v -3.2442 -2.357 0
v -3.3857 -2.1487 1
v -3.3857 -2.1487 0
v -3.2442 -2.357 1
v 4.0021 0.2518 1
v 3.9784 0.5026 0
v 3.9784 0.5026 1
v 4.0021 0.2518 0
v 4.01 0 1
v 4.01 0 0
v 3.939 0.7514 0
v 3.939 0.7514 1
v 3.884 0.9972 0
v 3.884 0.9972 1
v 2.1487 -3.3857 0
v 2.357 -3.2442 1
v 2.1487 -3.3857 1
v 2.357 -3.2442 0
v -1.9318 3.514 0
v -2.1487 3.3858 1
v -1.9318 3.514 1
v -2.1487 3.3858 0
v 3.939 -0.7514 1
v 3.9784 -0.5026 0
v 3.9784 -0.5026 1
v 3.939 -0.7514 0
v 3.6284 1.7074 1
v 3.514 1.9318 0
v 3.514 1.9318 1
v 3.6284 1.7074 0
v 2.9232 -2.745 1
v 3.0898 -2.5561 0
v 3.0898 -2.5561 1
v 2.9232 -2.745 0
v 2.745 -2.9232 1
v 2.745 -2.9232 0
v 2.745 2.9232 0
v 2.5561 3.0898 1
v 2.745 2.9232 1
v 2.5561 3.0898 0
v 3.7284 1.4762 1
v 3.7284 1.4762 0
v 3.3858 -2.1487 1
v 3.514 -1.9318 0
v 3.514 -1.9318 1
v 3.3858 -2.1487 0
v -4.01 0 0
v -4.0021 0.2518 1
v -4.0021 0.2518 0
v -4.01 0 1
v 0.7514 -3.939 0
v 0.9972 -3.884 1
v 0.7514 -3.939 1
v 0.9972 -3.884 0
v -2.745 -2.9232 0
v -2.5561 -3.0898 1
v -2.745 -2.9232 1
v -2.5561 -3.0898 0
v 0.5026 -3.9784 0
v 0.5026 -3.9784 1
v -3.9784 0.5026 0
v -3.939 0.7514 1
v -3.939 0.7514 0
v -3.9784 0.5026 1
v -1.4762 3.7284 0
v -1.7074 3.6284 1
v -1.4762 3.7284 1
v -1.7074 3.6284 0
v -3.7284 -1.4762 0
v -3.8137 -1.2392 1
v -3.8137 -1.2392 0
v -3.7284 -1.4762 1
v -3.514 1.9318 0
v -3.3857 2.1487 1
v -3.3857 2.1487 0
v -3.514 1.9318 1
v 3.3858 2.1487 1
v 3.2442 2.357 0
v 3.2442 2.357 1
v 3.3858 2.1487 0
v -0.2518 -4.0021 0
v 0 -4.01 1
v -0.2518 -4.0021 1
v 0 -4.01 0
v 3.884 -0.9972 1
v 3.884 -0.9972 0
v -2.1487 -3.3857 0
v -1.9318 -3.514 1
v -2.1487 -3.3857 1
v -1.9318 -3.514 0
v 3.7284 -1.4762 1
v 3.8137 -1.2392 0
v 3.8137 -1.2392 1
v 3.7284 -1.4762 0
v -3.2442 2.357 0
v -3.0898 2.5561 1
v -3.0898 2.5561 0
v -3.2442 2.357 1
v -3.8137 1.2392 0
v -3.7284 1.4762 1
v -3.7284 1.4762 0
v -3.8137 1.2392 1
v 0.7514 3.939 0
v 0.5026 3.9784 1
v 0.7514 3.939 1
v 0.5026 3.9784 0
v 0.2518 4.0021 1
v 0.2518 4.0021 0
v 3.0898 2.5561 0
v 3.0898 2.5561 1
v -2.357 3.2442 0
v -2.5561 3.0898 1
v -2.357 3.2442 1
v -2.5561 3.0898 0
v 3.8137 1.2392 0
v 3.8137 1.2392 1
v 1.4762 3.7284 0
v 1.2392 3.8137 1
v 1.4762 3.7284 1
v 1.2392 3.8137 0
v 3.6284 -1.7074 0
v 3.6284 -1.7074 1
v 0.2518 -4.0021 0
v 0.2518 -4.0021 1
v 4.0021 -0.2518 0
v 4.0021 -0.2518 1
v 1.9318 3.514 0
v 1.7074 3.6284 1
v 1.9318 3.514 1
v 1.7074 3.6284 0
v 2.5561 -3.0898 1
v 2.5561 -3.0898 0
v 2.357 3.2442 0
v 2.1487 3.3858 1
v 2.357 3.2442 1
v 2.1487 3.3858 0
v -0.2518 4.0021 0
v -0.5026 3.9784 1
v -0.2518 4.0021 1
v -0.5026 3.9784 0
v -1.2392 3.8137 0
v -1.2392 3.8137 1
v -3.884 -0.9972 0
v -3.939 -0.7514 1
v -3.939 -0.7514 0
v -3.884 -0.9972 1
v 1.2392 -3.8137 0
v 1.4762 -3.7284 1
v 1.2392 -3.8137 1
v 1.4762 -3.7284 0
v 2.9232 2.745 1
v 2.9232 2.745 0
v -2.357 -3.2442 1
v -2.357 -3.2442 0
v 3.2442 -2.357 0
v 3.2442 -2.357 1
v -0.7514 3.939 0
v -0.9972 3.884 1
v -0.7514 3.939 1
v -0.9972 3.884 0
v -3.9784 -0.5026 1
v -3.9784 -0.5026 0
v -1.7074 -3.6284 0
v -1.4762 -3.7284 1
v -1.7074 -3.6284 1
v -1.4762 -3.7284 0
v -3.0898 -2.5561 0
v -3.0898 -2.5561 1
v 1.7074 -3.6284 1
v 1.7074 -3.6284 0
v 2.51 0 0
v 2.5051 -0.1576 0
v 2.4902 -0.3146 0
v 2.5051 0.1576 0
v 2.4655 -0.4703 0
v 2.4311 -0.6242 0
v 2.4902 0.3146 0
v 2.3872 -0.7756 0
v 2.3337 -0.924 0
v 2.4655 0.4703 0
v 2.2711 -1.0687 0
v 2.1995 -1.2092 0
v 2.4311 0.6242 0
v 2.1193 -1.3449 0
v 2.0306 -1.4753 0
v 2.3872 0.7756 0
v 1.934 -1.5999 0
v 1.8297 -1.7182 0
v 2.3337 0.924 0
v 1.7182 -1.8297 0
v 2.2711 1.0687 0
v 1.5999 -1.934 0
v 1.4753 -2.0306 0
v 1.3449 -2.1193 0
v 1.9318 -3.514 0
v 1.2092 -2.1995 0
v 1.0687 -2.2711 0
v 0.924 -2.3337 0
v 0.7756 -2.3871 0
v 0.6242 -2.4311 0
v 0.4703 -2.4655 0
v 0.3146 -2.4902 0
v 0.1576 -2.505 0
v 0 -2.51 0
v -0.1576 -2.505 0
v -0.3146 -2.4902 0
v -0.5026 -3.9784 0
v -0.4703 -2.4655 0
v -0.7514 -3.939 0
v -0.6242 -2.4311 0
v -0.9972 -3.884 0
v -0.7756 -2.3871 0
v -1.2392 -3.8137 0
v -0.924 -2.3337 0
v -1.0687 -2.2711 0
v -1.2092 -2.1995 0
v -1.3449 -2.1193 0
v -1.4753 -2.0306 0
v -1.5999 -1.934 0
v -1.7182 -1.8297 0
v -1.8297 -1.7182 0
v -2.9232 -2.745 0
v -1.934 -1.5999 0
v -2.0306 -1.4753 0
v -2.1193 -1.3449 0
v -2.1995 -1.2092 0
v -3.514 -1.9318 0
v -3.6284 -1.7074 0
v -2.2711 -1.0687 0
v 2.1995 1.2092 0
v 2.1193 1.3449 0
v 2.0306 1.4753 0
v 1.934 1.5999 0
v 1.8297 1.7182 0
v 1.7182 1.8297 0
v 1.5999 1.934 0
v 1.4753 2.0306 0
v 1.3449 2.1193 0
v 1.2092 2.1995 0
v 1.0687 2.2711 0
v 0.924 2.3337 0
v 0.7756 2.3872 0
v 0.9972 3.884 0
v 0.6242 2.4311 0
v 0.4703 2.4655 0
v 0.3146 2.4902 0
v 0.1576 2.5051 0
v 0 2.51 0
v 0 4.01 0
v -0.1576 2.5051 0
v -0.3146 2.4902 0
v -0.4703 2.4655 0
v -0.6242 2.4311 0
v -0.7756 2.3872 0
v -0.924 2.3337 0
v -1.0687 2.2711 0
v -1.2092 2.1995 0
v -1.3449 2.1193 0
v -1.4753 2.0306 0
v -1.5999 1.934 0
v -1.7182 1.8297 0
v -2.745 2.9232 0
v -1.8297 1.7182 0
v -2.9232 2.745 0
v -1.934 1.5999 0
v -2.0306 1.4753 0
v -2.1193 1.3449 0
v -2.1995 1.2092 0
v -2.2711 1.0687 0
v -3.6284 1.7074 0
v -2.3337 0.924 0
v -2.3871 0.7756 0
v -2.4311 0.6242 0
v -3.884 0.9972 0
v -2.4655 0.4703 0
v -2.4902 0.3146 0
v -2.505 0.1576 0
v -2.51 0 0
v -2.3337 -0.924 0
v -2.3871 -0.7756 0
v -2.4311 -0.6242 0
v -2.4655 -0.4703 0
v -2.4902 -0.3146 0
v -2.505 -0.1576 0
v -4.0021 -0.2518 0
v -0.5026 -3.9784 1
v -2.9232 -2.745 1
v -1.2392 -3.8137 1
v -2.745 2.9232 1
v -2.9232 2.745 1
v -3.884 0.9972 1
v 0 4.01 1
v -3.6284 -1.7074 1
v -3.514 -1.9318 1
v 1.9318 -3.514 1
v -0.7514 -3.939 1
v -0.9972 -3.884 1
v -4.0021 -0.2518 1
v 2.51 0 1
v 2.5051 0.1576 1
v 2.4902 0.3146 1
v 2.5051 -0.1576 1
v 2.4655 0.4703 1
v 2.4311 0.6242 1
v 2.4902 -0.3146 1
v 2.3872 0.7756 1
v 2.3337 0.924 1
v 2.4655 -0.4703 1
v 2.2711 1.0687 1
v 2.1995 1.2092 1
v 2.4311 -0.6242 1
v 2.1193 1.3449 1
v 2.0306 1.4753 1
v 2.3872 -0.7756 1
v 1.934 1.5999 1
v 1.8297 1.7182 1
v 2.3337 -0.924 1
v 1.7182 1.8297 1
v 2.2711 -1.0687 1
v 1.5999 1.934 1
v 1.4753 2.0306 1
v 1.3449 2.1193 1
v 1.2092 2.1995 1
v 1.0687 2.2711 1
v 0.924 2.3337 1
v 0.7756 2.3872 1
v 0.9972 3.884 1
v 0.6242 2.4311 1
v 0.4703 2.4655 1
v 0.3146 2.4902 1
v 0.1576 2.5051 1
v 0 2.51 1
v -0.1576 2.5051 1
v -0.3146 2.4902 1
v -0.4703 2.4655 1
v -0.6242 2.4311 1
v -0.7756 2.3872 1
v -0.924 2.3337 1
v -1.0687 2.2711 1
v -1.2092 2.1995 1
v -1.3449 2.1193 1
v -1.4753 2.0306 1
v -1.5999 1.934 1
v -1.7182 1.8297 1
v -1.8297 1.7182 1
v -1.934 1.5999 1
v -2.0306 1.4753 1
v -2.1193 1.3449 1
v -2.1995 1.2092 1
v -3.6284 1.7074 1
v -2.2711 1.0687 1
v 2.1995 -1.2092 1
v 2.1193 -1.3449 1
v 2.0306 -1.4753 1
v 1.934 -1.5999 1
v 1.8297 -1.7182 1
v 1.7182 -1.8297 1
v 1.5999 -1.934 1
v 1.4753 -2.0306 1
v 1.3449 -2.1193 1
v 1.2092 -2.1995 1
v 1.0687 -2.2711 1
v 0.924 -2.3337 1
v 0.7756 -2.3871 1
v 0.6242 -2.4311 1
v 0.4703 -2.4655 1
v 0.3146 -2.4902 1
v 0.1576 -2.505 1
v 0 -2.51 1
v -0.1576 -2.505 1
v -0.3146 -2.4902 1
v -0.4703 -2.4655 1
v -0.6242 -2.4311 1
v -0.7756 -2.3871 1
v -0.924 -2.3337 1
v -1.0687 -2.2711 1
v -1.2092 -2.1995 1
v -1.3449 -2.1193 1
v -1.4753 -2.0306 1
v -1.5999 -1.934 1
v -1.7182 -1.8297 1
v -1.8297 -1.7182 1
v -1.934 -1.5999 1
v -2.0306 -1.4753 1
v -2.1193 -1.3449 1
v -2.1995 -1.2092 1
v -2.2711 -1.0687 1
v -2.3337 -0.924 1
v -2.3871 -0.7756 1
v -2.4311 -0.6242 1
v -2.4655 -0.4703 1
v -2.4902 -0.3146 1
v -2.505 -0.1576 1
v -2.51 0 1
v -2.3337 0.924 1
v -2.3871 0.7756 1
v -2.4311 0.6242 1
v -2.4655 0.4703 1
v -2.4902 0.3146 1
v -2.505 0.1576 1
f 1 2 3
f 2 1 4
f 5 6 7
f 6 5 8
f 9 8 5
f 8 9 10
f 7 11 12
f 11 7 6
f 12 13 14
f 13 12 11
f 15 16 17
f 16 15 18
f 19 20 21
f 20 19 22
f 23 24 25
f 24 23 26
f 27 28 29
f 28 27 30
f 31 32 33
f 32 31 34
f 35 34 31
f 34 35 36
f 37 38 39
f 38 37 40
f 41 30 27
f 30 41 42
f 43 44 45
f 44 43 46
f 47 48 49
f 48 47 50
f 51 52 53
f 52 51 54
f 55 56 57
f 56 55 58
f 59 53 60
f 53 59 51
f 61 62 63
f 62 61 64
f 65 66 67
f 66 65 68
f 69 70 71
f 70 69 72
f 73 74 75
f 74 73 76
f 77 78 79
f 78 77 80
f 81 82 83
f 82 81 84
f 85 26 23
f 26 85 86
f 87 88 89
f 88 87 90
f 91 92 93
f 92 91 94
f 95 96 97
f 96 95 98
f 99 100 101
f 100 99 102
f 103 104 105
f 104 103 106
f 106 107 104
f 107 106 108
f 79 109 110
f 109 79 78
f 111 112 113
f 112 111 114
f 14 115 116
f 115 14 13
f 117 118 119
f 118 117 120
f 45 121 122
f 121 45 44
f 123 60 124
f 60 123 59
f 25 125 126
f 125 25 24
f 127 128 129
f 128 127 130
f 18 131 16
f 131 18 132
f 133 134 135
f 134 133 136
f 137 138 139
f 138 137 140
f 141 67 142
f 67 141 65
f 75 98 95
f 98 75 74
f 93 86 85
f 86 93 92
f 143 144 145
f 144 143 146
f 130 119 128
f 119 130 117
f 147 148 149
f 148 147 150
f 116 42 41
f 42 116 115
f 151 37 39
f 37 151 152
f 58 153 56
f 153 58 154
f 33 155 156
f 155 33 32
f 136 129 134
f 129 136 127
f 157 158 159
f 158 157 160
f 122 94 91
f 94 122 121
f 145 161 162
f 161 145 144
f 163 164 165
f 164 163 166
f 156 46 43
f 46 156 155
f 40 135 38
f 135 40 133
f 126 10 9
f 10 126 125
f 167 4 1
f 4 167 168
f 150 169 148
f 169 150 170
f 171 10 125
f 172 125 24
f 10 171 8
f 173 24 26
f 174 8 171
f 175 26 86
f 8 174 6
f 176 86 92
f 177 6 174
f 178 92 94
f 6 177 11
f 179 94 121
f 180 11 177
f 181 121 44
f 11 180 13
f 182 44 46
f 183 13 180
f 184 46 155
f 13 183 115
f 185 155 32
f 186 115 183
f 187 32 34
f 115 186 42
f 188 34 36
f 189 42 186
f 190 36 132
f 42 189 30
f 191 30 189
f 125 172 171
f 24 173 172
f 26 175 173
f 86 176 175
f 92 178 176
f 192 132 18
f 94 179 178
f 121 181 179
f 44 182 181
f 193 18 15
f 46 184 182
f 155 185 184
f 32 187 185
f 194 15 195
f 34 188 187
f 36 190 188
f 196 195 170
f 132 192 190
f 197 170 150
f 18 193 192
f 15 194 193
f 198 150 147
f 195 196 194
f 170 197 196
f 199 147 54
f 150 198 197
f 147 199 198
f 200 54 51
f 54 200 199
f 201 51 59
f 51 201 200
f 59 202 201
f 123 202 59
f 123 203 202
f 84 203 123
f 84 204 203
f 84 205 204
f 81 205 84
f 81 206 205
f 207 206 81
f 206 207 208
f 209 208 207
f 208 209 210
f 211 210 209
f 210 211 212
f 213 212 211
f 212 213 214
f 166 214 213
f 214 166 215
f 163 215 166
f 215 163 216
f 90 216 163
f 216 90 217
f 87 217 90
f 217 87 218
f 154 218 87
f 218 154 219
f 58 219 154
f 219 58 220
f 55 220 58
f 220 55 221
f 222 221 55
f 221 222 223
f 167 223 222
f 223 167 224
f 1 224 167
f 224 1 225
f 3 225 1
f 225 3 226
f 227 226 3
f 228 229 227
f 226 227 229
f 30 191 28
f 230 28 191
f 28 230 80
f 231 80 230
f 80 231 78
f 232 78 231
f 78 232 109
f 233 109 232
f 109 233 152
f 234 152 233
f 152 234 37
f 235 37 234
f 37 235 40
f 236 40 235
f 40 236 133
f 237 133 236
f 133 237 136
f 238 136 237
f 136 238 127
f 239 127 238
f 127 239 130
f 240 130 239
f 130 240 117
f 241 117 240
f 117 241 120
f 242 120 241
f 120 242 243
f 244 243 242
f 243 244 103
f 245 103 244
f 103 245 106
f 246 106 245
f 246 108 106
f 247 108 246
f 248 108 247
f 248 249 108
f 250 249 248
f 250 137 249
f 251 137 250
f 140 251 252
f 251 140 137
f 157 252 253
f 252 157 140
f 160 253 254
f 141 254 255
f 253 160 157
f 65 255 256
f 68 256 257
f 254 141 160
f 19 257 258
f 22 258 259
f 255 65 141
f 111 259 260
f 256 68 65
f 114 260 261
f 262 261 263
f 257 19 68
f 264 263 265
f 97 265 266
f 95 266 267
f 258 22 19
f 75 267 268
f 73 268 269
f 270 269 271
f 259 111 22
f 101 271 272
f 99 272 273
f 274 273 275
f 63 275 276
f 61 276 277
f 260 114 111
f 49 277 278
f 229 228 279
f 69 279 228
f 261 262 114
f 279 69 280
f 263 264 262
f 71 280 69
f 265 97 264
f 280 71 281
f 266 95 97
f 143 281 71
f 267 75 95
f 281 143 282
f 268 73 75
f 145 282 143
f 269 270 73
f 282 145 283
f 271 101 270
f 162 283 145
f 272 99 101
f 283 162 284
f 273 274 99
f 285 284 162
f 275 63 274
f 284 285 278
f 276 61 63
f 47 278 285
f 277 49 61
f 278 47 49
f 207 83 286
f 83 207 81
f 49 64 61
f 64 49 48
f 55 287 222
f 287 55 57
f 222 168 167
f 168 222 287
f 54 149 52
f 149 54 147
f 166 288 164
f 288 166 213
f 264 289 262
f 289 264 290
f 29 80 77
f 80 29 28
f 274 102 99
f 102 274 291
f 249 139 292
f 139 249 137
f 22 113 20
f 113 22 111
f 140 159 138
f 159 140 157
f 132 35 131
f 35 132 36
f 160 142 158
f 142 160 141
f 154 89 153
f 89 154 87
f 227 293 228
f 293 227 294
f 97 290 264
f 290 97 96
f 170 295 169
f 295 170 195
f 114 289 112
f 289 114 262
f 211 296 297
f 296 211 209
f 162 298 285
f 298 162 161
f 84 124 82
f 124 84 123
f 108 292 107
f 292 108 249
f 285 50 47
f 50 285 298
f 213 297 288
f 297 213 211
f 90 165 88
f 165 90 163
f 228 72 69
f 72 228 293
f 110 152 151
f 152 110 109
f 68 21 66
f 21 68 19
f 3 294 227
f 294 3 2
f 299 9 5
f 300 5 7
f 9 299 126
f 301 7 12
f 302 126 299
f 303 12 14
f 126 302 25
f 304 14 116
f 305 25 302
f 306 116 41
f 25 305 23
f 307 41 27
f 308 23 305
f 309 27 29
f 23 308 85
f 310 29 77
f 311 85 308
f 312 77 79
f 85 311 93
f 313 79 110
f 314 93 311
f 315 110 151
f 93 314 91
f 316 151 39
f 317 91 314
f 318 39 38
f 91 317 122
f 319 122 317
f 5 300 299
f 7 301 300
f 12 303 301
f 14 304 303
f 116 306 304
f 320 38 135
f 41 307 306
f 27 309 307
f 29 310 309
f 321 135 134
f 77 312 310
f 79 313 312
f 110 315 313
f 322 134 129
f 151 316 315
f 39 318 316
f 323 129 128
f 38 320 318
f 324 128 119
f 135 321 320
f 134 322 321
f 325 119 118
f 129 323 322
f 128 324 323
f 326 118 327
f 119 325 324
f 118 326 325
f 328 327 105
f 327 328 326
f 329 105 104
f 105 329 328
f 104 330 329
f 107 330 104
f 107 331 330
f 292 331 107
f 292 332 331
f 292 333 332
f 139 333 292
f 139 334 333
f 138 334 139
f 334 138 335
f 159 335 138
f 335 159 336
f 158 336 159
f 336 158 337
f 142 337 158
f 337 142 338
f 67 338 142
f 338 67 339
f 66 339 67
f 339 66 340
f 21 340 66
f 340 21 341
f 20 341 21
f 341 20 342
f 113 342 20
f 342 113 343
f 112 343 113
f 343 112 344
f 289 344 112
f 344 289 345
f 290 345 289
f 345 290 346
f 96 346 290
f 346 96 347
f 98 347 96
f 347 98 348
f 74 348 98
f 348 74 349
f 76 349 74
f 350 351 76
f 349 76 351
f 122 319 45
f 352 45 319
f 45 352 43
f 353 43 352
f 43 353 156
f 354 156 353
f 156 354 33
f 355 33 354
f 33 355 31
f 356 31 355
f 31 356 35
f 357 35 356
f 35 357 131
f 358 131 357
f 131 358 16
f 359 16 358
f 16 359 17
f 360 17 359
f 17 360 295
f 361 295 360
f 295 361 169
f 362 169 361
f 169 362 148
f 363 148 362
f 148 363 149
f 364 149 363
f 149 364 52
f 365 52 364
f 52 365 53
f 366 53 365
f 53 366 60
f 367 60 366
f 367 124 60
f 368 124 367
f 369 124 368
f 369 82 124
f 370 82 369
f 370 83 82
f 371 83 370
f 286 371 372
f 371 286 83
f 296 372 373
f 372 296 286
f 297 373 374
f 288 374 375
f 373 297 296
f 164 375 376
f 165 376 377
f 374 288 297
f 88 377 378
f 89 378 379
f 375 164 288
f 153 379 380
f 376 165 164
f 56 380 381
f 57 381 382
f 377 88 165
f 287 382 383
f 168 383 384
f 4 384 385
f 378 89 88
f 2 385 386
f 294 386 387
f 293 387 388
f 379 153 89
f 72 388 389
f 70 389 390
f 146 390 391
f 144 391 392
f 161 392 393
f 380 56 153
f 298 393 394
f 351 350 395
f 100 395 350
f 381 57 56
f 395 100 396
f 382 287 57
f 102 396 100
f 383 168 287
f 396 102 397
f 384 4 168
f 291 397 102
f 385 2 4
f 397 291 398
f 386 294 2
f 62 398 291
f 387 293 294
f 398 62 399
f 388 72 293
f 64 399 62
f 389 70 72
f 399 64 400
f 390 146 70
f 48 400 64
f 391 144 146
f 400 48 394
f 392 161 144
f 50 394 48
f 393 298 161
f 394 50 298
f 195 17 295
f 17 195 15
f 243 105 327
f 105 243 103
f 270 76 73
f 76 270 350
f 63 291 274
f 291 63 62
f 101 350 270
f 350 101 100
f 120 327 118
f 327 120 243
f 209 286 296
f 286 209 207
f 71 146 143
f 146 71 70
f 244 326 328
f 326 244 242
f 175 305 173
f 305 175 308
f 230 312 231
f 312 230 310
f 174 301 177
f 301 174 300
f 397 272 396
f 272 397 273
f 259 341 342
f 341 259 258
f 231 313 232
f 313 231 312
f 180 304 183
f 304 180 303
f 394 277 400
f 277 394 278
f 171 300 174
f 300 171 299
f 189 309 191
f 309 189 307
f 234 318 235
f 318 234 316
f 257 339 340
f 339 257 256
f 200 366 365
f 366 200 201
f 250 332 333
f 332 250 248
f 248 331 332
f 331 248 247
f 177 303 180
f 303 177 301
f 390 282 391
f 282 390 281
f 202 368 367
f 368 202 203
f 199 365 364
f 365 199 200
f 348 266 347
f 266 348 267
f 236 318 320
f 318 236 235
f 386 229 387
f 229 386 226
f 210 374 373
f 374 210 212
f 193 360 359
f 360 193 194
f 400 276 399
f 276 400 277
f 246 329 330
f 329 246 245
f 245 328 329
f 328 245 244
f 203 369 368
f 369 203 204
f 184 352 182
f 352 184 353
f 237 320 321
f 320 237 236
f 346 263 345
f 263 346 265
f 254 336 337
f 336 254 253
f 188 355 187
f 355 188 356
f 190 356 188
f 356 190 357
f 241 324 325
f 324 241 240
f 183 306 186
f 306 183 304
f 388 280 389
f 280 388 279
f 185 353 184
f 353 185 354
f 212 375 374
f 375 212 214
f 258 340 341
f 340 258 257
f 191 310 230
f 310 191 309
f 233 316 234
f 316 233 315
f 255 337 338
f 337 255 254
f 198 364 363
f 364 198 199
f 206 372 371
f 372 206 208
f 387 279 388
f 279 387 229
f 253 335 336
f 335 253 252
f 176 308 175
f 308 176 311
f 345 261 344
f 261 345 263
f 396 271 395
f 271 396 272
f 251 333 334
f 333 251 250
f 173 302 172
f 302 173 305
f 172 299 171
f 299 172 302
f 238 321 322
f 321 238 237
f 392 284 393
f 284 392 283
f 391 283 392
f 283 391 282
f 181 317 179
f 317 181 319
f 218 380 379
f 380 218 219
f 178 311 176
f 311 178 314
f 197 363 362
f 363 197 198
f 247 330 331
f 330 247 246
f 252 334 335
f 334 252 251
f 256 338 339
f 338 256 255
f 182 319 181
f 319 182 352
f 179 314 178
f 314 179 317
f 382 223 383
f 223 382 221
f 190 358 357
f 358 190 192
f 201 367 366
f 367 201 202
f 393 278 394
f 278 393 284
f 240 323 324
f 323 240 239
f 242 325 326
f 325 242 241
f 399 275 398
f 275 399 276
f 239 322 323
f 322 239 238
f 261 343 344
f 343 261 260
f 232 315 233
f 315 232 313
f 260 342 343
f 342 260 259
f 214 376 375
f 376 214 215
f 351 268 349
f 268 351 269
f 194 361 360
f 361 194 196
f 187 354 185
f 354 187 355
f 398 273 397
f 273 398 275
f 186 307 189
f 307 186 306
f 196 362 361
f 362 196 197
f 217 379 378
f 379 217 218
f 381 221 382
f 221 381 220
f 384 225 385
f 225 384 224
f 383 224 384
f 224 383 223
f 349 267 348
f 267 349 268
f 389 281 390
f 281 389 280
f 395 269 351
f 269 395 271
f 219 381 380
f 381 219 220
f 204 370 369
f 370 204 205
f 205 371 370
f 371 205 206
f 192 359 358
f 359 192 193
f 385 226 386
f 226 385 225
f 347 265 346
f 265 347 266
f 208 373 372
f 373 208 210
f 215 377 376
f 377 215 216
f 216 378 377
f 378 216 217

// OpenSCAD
// Washer Model with Precise Measurements

// Main variables
outer_diameter = 8.02;  // Outer diameter in mm
inner_diameter = 5.02;  // Inner diameter in mm
thickness = 1;          // Thickness in mm

// Create the washer by subtracting the inner cylinder from the outer cylinder
difference() {
    // Outer cylinder (main body of the washer)
    cylinder(h = thickness,           // Height of 1mm
             d = outer_diameter,      // Diameter of 8.02mm
             $fn = 100);             // High smoothness for circular shape

    // Inner cylinder (the hole)
    cylinder(h = thickness,           // Same height as outer cylinder
             d = inner_diameter,      // Diameter of 5.02mm
             $fn = 100);             // High smoothness for circular shape
}
